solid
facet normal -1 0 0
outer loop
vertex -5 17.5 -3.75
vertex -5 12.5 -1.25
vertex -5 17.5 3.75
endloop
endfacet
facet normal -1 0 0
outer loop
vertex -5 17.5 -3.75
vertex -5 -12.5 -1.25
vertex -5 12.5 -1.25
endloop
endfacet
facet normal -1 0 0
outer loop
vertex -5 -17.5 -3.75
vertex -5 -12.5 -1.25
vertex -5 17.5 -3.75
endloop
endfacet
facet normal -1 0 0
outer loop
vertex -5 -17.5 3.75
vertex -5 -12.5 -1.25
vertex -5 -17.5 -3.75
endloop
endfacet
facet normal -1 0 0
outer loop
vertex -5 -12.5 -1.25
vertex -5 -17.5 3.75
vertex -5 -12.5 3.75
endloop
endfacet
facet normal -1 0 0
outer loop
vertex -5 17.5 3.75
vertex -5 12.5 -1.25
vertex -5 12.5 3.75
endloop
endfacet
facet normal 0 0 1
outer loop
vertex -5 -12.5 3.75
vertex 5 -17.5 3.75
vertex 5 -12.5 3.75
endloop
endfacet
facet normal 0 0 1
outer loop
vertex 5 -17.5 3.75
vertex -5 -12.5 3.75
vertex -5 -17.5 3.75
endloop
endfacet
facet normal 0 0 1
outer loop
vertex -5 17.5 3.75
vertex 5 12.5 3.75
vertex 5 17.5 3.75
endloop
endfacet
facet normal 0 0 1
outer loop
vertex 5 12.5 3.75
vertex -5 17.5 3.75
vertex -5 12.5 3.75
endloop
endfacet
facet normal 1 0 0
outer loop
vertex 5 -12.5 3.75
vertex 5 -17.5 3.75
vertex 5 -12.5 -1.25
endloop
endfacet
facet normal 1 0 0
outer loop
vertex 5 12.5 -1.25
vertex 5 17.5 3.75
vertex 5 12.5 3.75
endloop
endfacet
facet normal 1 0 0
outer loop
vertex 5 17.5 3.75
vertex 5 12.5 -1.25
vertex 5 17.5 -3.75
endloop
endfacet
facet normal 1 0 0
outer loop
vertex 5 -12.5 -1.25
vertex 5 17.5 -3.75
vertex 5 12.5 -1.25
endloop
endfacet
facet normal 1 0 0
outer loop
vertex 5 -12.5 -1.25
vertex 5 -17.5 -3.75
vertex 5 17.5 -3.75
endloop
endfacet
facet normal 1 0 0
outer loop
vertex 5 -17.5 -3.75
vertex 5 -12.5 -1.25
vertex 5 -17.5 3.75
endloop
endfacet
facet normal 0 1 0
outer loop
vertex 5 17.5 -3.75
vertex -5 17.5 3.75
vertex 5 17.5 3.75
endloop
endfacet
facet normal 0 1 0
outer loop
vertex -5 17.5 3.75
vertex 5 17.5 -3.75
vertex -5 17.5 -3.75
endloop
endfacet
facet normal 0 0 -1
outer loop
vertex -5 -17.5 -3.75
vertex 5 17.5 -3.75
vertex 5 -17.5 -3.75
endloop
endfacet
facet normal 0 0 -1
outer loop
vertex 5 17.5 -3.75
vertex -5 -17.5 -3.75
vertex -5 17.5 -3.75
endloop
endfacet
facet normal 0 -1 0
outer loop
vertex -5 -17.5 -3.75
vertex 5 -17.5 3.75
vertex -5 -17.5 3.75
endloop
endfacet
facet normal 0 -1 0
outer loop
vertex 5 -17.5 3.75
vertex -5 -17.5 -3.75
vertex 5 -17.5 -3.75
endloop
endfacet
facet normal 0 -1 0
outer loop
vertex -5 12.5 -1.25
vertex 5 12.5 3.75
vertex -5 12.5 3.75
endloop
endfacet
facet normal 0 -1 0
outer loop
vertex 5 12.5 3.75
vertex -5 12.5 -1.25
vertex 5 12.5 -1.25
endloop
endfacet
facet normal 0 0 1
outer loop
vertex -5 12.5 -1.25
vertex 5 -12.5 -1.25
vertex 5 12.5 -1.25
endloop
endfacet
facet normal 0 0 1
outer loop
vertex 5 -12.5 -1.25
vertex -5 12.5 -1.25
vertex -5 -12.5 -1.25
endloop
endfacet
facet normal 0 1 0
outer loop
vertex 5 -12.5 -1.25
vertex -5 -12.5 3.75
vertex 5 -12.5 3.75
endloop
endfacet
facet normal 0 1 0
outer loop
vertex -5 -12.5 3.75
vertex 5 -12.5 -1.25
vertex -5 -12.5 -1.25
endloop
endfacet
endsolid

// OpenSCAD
difference() {
    // Bracket base
    scale([10,35,7.5]) cube(1,1,1,center=true);
    
    // Armband slot
    translate([0,0,1.25]) scale([10,25,5]) cube(1,1,1,center=true);
}
